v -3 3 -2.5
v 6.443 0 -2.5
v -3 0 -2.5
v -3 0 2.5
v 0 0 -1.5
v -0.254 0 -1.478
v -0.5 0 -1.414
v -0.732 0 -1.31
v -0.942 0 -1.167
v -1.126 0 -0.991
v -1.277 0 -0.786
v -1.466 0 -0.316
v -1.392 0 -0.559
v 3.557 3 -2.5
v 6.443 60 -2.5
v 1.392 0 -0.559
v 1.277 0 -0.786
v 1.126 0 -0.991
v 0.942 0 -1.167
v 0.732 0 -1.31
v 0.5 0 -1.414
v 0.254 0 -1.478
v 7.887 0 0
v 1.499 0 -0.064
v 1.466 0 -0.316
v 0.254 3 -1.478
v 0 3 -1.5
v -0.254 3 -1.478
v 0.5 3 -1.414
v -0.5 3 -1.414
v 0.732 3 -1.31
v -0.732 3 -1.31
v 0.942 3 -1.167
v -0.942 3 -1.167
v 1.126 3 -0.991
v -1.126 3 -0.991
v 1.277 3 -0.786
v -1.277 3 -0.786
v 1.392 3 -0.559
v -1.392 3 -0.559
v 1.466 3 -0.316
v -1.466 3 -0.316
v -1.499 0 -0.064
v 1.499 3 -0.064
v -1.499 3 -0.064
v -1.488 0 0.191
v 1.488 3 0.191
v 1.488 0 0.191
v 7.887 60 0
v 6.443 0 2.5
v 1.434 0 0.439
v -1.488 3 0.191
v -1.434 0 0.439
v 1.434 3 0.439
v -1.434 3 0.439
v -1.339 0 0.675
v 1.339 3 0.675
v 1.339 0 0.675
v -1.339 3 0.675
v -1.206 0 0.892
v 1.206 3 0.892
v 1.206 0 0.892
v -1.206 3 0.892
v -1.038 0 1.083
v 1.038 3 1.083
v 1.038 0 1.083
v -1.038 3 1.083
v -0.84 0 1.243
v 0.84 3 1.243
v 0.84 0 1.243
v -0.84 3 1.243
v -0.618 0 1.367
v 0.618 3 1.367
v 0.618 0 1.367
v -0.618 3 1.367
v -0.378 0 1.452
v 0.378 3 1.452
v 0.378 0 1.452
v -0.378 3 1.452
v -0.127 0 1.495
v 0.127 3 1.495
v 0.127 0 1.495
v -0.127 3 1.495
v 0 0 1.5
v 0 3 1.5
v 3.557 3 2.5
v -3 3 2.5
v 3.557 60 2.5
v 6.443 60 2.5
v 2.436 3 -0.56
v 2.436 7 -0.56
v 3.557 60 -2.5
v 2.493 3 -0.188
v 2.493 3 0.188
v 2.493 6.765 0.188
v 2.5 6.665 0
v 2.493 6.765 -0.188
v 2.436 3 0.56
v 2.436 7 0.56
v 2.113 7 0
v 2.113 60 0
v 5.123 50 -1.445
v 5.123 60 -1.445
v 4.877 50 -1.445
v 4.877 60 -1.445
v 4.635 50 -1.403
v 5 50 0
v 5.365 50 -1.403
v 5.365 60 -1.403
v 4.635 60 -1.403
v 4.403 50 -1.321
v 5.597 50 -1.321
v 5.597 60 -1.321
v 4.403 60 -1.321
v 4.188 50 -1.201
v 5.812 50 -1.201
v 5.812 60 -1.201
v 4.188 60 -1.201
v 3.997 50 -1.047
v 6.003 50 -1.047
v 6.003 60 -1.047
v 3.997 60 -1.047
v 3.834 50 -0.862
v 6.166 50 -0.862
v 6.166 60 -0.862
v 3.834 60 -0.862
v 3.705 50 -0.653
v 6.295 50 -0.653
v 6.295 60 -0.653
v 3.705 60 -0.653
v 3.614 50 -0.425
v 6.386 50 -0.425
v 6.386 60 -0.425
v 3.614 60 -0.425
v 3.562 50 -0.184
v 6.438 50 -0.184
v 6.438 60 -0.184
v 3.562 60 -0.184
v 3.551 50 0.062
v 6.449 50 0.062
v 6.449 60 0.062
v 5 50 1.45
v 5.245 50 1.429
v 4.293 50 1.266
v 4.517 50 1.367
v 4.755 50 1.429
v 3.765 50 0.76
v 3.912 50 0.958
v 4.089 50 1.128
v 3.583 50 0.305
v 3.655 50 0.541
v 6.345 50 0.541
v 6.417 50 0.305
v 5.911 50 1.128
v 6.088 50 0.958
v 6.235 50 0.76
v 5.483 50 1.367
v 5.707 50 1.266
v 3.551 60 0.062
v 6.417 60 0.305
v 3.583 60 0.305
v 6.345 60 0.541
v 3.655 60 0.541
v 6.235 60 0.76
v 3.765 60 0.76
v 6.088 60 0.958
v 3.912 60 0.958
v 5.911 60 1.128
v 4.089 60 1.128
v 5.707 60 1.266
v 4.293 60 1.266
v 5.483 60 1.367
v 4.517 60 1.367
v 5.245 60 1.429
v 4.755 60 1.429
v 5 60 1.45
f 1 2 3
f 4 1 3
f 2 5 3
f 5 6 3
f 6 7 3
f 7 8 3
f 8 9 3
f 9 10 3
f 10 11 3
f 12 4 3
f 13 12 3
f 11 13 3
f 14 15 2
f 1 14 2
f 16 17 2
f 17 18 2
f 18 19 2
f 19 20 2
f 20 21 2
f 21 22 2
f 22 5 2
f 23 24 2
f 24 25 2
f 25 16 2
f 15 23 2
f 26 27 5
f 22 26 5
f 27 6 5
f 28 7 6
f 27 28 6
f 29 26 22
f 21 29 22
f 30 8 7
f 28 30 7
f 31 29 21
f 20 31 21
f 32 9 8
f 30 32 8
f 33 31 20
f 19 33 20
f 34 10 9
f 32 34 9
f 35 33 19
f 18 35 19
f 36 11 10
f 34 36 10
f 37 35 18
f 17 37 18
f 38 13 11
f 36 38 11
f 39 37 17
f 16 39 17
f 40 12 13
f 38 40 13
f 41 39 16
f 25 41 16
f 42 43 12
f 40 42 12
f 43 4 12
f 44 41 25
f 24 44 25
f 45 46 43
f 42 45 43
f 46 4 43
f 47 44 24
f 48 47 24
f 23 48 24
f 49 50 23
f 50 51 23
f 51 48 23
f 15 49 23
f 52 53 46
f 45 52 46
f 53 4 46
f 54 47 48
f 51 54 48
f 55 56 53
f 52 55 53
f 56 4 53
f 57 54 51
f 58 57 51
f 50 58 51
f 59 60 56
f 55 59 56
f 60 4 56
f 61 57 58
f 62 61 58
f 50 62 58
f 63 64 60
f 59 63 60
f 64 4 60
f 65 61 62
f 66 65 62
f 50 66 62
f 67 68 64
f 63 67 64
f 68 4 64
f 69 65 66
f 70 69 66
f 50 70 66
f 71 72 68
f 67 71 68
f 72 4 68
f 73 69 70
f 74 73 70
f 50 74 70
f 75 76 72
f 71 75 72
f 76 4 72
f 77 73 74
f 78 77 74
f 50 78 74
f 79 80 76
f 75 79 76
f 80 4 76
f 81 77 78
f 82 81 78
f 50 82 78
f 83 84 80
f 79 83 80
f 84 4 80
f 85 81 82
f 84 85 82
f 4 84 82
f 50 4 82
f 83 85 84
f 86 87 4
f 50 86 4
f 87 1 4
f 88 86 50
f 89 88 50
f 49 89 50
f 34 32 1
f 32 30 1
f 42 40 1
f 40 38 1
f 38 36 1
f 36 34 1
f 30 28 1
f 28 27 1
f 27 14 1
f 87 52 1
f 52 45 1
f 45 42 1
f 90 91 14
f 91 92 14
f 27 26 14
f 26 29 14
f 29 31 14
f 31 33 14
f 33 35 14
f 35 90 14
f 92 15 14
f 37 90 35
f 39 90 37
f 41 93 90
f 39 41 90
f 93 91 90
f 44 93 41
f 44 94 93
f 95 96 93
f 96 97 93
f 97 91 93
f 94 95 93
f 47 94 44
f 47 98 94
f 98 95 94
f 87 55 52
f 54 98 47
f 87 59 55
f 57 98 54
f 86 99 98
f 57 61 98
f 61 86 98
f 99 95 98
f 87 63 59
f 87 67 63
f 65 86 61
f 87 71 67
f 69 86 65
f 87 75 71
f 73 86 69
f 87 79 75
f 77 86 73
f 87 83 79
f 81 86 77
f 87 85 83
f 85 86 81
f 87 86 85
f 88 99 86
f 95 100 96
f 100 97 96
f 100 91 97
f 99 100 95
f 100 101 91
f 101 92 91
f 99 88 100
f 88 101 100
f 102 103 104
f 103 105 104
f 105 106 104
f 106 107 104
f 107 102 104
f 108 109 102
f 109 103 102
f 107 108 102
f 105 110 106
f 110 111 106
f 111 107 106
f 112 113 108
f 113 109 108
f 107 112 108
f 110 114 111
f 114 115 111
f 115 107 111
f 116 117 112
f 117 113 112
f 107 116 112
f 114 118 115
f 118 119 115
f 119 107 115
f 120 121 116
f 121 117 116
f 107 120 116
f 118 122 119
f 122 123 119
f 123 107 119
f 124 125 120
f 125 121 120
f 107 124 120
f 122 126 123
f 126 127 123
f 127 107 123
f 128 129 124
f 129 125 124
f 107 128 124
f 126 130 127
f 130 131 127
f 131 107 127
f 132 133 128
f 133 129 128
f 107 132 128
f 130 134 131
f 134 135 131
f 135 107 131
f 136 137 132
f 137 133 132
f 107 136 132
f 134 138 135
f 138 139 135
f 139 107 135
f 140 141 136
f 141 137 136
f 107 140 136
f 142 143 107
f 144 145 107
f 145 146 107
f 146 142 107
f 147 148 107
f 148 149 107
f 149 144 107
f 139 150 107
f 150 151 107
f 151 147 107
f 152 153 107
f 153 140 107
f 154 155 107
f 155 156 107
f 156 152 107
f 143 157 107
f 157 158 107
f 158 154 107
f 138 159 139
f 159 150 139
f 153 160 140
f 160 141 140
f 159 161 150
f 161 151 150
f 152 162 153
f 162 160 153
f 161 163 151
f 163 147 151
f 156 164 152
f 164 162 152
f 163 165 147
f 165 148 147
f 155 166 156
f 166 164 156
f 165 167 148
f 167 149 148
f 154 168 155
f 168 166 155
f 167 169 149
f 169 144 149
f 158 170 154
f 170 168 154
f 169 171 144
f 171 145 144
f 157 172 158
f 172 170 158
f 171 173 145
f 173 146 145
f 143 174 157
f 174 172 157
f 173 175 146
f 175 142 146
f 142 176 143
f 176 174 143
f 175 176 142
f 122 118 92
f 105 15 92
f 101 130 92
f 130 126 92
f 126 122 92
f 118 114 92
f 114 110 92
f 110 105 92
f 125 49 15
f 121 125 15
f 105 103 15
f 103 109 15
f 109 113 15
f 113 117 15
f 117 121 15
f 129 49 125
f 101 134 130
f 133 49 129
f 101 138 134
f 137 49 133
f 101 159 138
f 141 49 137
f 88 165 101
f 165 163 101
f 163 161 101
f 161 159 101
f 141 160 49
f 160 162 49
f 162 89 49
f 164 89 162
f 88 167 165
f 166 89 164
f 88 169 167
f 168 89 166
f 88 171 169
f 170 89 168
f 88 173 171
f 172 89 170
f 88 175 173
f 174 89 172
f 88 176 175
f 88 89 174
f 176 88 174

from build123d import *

# Parameters (mm, degrees)
SKETCH2_R           = 1.5
BOSS_EXTRUDE1_DEPTH = 3
BOSS_EXTRUDE2_DEPTH = 60
SKETCH3_R           = 1.45
CUT_EXTRUDE1_DEPTH  = 10
CUT_EXTRUDE2_DEPTH  = 8
SKETCH5_R           = 2.5
CUT_EXTRUDE3_DEPTH  = 3
CHAMFER1_SIZE       = 1


with BuildPart() as part:
    # Sketch2 → Boss-Extrude1 (new body)
    # profile 1 of 3: a face of its own
    with BuildSketch(Plane(origin=(0, 0, 0), x_dir=(1, 0, 0), z_dir=(0, 1, 0))):
        Polygon((2.113248654, 0), (3.556624327, 2.5), (-3, 2.5), (-3, -2.5), (3.556624327, -2.5), align=None)
        with Locations(Location((0, 0, 0), (0, 0, 270))):
            Circle(SKETCH2_R, mode=Mode.SUBTRACT)
    # profile 2 of 3: a face of its own
    with BuildSketch(Plane(origin=(0, 0, 0), x_dir=(1, 0, 0), z_dir=(0, 1, 0))):
        Polygon((8, -2.5), (8, 2.5), (6.443375673, 2.5), (7.886751346, 0), (6.443375673, -2.5), align=None)
    # profile 3 of 3: a face of its own
    with BuildSketch(Plane(origin=(0, 0, 0), x_dir=(1, 0, 0), z_dir=(0, 1, 0))):
        Polygon((7.886751346, 0), (6.443375673, 2.5), (3.556624327, 2.5), (2.113248654, 0), (3.556624327, -2.5), (6.443375673, -2.5), align=None)
    extrude(amount=BOSS_EXTRUDE1_DEPTH)

    # Sketch2<3> → Boss-Extrude2 (add)
    with BuildSketch(Plane(origin=(0, 0, 0), x_dir=(1, 0, 0), z_dir=(0, 1, 0))):
        Polygon((3.556624327, 2.5), (2.113248654, 0), (3.556624327, -2.5), (6.443375673, -2.5), (7.886751346, 0), (6.443375673, 2.5), align=None)
    extrude(amount=BOSS_EXTRUDE2_DEPTH)

    # Sketch3 → Cut-Extrude1 (cut)
    with BuildSketch(Plane(origin=(0, 60, 0), x_dir=(1, 0, 0), z_dir=(0, 1, 0))):
        with Locations(Location((5, 0, 0), (0, 0, 270))):
            Circle(SKETCH3_R)
    extrude(amount=-CUT_EXTRUDE1_DEPTH, mode=Mode.SUBTRACT)

    # Sketch4 → Cut-Extrude2 (cut)
    with BuildSketch(Plane(origin=(0, 3, 0), x_dir=(1, 0, 0), z_dir=(0, 1, 0))):
        Polygon((6.443375673, 2.5), (8, 2.5), (8, -2.5), (6.443375673, -2.5), (7.886751346, 0), align=None)
    extrude(amount=-CUT_EXTRUDE2_DEPTH, mode=Mode.SUBTRACT)

    # Sketch5 → Cut-Extrude3 (cut)
    with BuildSketch(Plane(origin=(0, 3, 0), x_dir=(1, 0, 0), z_dir=(0, 1, 0))):
        Circle(SKETCH5_R)
    extrude(amount=CUT_EXTRUDE3_DEPTH, mode=Mode.SUBTRACT)

    # Chamfer1
    # the kernel refuses this chamfer: 1 mm, written as the material it takes off along each edge
    with BuildSketch(Plane(origin=(0.82740716, 6, -2.227142798), x_dir=(0.8656979742248804, -0.027495876610586487, -0.49981095845564805), z_dir=(0.4999999999999997, 0, 0.8660254037844388))) as chamfer1_piece_1_section:
        Polygon((CHAMFER1_SIZE * 0.999621916911, CHAMFER1_SIZE * 0.0274958766106), (-CHAMFER1_SIZE * 0.0274958766106, CHAMFER1_SIZE * 0.999621916911), (0, 0), align=None)
    chamfer1_piece_1 = extrude(amount=5.789866745, mode=Mode.PRIVATE)
    chamfer1_piece_1 = chamfer1_piece_1 & Plane(origin=(0, 6.406914482, 0), x_dir=(1, 0, 0), z_dir=(0, -1, 0)) * Cylinder(2.5, 16, mode=Mode.PRIVATE)
    add(chamfer1_piece_1, mode=Mode.SUBTRACT)
    with BuildSketch(Plane(origin=(3.722340533, 6, -2.787028888), x_dir=(0.8656979742248803, -0.027495876610586504, 0.4998109584556485), z_dir=(-0.5000000000000001, 0, 0.8660254037844386))) as chamfer1_piece_2_section:
        Polygon((CHAMFER1_SIZE * 0.999621916911, CHAMFER1_SIZE * 0.0274958766106), (-CHAMFER1_SIZE * 0.0274958766106, CHAMFER1_SIZE * 0.999621916911), (0, 0), align=None)
    chamfer1_piece_2 = extrude(amount=5.789866745, mode=Mode.PRIVATE)
    chamfer1_piece_2 = chamfer1_piece_2 & Plane(origin=(0, 6.406914482, 0), x_dir=(1, 0, 0), z_dir=(0, -1, 0)) * Cylinder(2.5, 16, mode=Mode.PRIVATE)
    add(chamfer1_piece_2, mode=Mode.SUBTRACT)


solid = part.part
